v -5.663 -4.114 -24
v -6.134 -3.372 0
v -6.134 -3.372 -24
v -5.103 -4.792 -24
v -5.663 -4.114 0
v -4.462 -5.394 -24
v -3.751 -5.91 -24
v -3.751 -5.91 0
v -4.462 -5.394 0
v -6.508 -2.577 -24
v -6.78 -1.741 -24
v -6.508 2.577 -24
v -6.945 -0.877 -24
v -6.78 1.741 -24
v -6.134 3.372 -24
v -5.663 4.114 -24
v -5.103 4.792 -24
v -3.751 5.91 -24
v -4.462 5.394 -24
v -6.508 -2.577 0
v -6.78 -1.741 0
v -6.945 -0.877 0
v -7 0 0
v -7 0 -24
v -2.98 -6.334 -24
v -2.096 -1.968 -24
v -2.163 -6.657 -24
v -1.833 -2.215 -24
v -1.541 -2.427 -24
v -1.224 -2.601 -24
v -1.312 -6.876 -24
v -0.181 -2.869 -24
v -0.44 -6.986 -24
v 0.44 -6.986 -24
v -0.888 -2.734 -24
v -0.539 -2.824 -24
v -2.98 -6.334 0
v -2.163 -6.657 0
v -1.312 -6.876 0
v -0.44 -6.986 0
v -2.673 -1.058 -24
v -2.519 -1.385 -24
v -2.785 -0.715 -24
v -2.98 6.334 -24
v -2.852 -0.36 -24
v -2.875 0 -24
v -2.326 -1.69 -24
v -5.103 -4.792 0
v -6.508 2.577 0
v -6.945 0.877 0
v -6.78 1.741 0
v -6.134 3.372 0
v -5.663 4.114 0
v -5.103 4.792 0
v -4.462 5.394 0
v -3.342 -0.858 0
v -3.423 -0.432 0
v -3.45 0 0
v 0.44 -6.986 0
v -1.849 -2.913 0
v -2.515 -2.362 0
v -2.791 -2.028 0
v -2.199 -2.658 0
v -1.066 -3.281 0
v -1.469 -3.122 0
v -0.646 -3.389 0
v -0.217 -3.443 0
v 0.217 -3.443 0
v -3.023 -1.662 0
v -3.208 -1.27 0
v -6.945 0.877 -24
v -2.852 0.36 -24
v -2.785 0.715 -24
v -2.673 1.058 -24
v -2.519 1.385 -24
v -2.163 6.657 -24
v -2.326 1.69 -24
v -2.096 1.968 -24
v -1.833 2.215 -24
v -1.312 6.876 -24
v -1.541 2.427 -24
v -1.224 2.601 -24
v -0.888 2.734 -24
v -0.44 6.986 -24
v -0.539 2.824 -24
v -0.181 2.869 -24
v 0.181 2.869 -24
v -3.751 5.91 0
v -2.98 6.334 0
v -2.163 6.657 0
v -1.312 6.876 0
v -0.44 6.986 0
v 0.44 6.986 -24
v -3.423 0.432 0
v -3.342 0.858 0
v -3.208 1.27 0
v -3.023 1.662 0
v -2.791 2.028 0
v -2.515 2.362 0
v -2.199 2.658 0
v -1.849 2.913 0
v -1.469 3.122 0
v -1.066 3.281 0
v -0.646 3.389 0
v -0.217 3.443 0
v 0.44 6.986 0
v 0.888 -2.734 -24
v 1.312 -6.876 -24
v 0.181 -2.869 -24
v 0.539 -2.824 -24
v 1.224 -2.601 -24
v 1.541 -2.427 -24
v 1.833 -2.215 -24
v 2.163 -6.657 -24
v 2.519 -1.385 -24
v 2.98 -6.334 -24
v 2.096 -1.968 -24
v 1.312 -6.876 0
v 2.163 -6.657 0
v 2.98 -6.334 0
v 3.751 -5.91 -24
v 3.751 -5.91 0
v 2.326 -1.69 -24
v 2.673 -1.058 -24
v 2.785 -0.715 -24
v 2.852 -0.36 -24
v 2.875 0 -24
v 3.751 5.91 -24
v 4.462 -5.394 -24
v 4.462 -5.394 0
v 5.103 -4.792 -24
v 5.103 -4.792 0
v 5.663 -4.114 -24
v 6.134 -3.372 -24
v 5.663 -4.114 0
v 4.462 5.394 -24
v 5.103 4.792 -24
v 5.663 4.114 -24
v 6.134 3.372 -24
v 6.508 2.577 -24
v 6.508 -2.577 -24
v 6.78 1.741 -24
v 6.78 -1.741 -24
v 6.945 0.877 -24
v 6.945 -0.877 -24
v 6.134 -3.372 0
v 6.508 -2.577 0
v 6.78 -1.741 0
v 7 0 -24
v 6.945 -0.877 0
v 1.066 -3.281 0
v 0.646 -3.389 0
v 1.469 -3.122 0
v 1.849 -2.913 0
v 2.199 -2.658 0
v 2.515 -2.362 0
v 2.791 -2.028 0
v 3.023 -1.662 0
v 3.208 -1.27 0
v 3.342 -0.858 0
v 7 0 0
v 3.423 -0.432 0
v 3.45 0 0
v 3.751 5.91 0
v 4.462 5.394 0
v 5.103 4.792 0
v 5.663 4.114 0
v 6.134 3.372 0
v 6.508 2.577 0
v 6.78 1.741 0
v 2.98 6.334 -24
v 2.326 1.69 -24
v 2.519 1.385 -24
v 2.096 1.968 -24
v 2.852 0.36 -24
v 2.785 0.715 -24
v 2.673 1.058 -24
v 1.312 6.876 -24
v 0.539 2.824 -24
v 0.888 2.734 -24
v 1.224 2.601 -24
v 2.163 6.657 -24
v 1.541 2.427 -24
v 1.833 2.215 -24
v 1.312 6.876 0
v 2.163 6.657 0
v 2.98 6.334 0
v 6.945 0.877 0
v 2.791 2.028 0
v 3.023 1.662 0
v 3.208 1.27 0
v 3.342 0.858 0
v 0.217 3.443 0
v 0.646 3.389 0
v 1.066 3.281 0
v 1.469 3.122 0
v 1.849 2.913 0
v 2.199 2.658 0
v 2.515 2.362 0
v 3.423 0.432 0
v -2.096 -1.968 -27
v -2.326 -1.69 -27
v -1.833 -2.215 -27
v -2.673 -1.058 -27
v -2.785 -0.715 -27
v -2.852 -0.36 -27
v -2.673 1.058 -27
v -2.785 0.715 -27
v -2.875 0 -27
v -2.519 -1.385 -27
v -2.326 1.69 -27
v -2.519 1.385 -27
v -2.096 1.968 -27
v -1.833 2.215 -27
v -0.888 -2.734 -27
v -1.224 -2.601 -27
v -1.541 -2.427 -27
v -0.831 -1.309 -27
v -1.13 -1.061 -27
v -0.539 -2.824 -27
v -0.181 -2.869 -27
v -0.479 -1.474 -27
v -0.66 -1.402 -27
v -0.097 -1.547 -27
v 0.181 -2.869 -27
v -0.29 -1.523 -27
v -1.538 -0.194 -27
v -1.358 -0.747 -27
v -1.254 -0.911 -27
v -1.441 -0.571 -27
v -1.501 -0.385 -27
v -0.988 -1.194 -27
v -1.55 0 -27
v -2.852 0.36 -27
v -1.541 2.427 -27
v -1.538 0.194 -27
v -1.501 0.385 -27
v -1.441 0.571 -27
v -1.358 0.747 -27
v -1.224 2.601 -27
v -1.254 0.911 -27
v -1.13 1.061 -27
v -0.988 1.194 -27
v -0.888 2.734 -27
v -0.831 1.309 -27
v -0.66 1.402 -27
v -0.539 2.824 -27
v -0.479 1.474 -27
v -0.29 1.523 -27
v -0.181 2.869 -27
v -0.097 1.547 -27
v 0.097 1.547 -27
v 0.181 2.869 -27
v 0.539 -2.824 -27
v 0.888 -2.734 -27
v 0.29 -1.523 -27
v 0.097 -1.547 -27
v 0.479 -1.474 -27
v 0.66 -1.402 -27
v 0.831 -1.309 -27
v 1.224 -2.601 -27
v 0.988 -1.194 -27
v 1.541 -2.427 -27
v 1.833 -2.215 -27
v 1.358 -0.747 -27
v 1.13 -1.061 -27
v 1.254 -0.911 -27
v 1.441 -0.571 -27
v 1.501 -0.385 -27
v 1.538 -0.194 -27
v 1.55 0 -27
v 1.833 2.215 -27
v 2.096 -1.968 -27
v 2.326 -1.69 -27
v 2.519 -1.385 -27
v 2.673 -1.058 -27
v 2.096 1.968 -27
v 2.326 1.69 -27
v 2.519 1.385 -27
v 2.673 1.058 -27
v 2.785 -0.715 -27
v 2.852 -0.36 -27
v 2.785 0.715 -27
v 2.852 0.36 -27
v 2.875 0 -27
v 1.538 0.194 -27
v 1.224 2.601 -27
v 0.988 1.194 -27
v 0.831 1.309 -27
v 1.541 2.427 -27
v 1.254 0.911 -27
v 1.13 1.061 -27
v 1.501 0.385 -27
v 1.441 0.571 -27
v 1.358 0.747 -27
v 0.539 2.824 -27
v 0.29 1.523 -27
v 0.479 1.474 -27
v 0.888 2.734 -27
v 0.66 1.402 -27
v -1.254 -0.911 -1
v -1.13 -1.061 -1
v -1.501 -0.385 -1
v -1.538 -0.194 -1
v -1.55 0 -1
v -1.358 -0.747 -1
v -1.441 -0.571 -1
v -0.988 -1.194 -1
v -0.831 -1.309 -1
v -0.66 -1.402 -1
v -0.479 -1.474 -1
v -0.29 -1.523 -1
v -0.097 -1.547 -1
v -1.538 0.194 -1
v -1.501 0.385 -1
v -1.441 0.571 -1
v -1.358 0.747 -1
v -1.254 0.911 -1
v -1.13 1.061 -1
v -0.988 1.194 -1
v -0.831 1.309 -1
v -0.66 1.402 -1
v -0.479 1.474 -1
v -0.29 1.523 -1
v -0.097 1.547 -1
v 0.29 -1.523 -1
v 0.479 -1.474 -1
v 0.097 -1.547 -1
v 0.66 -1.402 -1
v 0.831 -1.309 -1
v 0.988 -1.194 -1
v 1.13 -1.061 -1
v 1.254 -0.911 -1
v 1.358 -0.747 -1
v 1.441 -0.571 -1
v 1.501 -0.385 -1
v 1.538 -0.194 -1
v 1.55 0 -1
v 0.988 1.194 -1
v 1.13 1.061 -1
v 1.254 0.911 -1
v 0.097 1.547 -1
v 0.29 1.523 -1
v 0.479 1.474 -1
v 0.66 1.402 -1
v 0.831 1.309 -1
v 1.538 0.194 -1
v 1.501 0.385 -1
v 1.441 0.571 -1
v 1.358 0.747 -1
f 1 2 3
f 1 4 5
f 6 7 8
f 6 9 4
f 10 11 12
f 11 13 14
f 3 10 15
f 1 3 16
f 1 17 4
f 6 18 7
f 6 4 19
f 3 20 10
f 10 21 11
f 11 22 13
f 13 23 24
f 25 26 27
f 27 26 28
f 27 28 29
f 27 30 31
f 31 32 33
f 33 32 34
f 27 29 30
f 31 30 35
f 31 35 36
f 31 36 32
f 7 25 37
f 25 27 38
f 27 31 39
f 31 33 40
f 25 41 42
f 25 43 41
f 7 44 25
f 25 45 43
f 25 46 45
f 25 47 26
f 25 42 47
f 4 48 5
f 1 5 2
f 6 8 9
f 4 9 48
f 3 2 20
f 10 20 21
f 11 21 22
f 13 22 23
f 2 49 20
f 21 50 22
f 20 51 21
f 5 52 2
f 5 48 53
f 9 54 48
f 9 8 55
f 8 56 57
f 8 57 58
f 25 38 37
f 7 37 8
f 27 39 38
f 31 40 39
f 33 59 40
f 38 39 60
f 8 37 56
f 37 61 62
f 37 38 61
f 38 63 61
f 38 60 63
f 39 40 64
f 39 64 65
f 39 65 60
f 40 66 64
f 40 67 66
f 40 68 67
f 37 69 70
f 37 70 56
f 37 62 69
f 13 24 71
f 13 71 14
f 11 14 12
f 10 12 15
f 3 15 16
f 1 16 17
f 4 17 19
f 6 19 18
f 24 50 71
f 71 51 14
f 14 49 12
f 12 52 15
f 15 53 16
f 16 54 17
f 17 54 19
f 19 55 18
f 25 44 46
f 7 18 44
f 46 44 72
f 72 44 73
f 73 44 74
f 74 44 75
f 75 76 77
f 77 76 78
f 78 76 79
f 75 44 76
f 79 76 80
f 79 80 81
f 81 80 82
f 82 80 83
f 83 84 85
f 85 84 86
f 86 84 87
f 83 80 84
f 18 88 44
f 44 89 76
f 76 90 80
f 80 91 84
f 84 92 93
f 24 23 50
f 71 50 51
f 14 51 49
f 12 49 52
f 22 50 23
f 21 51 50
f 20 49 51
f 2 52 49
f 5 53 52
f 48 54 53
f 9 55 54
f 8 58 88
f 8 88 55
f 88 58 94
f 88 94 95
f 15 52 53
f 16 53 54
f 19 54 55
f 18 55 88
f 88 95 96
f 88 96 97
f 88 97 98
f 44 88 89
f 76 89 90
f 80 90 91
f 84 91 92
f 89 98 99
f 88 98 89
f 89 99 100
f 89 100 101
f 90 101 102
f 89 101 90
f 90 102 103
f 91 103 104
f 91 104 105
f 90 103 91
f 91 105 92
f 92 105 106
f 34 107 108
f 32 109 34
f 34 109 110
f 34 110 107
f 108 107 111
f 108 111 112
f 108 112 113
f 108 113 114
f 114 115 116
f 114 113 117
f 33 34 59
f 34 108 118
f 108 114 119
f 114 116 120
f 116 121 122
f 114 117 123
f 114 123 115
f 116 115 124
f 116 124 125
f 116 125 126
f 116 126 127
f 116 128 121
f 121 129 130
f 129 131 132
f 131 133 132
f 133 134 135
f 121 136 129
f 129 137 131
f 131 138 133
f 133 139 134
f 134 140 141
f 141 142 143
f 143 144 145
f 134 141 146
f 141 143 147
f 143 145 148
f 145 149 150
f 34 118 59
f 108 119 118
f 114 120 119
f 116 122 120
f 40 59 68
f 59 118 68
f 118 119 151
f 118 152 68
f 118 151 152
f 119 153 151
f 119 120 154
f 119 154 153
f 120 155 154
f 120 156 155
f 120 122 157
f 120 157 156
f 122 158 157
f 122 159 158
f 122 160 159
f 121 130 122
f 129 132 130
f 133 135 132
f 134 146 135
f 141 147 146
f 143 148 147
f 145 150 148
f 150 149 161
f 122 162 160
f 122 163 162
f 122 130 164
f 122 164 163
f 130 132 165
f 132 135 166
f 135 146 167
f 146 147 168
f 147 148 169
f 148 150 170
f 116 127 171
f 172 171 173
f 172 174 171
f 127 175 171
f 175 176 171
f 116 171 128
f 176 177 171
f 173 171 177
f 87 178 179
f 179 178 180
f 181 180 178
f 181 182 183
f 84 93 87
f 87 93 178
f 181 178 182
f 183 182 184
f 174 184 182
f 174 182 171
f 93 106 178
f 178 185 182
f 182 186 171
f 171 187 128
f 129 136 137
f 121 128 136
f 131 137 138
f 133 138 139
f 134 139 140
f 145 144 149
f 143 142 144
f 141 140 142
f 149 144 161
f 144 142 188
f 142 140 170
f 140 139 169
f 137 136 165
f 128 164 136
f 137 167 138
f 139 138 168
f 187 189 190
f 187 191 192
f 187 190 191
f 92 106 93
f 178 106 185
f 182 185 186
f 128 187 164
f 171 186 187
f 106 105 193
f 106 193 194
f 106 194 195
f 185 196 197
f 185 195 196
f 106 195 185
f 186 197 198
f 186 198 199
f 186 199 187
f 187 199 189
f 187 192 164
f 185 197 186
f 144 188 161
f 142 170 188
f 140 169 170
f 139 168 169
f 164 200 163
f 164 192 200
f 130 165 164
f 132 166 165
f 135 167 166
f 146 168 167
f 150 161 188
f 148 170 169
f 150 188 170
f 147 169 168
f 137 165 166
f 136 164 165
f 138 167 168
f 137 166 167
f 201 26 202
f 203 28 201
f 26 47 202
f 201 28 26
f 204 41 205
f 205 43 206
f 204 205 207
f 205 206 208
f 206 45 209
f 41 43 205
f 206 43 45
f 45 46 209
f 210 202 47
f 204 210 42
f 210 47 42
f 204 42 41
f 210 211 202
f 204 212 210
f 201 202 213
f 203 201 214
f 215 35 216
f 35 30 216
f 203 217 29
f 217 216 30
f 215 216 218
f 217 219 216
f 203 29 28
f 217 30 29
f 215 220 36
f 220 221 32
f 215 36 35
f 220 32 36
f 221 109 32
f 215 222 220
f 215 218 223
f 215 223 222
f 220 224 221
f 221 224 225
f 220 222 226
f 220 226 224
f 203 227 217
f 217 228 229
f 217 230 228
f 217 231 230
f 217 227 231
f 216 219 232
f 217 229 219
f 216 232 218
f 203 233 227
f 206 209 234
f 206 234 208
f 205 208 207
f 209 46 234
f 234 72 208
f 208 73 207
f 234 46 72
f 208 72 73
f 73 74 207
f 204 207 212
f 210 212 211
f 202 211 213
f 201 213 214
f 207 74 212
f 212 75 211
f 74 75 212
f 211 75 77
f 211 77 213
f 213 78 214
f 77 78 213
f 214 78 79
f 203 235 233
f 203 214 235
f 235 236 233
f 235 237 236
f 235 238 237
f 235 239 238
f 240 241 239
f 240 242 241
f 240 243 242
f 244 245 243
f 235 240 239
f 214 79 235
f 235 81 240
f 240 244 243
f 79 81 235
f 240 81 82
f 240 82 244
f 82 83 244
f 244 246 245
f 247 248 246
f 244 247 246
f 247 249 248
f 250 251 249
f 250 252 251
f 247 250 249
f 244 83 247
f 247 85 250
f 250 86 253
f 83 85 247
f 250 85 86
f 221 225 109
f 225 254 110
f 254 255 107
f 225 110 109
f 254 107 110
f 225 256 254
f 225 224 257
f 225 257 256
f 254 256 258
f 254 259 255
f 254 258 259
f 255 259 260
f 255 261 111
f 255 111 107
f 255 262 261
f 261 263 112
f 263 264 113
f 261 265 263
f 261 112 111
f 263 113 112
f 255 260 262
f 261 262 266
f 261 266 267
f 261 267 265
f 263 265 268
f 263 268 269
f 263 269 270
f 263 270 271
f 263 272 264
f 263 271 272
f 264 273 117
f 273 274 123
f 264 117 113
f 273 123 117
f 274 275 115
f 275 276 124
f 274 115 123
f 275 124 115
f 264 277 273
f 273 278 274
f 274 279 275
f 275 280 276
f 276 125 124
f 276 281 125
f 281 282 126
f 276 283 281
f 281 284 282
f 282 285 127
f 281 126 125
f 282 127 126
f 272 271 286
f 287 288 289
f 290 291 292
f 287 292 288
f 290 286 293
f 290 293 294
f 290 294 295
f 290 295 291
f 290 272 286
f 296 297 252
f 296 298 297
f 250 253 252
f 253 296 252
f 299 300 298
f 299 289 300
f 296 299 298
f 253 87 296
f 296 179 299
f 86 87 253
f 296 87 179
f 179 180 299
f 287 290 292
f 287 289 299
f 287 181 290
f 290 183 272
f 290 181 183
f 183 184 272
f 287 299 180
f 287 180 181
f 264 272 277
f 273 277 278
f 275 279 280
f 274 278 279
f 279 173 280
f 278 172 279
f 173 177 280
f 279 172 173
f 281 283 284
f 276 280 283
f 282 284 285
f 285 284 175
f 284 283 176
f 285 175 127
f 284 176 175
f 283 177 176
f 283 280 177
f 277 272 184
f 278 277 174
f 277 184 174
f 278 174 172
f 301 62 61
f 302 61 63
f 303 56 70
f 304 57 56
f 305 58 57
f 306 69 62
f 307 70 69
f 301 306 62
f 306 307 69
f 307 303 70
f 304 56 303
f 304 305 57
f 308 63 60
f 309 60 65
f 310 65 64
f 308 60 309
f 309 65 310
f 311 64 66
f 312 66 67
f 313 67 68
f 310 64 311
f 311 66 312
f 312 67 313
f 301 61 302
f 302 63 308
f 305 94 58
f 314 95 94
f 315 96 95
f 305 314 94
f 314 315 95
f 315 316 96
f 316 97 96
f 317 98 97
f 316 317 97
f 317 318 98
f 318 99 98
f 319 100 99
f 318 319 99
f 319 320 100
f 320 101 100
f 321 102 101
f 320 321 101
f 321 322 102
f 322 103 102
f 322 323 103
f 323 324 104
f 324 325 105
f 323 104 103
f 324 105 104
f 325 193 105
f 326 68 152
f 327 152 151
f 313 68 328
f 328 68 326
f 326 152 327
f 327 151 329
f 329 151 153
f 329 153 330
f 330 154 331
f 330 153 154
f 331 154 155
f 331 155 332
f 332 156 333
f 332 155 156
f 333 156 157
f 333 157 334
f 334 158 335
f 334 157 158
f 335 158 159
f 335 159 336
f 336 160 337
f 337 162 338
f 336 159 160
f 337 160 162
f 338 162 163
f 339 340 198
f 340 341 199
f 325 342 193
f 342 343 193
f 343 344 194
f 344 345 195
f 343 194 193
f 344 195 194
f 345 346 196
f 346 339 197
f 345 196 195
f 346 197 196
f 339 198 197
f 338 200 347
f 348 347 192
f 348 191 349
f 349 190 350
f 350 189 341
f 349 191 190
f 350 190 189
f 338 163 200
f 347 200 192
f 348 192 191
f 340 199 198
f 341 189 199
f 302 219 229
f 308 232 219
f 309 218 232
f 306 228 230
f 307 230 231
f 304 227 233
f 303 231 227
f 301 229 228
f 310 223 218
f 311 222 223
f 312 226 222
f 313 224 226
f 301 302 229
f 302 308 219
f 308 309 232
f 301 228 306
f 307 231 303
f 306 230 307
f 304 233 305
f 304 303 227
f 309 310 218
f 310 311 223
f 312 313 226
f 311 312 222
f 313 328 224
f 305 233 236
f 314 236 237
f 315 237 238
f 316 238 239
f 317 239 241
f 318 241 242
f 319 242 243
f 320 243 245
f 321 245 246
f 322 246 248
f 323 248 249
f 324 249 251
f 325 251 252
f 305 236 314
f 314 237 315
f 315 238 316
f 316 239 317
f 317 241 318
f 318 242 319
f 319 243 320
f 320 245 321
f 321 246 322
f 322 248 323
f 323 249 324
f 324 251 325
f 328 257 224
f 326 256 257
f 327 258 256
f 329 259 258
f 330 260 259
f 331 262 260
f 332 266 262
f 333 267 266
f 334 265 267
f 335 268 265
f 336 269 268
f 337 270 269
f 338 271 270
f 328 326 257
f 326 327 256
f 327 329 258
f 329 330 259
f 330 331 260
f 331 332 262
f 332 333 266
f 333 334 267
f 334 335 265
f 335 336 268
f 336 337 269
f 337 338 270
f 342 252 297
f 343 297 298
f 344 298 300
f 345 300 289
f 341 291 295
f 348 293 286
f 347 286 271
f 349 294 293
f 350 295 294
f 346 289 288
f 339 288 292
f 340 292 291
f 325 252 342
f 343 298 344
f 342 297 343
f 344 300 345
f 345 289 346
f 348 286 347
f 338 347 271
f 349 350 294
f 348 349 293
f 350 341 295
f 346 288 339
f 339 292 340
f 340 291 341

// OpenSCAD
$fn = 50;

difference() {
	union() {
		translate(v = [0, 0, -24.0]) {
			cylinder(h = 24, r = 7.0);
		}
		#translate(v = [0, 0, -27.0]) {
			cylinder(h = 27, r = 2.875);
		}
	}
	union() {
		translate(v = [0, 0, 0]) {
			rotate(a = [0, 0, 0]) {
				difference() {
					union() {
						translate(v = [0, 0, -27.0]) {
							cylinder(h = 27, r = 1.25);
						}
						translate(v = [0, 0, -1.0]) {
							cylinder(h = 1.0, r1 = 1.55, r2 = 3.45);
						}
						translate(v = [0, 0, -27.0]) {
							cylinder(h = 27, r = 1.55);
						}
						translate(v = [0, 0, -27.0]) {
							cylinder(h = 27, r = 1.25);
						}
					}
					union();
				}
			}
		}
	}
}
